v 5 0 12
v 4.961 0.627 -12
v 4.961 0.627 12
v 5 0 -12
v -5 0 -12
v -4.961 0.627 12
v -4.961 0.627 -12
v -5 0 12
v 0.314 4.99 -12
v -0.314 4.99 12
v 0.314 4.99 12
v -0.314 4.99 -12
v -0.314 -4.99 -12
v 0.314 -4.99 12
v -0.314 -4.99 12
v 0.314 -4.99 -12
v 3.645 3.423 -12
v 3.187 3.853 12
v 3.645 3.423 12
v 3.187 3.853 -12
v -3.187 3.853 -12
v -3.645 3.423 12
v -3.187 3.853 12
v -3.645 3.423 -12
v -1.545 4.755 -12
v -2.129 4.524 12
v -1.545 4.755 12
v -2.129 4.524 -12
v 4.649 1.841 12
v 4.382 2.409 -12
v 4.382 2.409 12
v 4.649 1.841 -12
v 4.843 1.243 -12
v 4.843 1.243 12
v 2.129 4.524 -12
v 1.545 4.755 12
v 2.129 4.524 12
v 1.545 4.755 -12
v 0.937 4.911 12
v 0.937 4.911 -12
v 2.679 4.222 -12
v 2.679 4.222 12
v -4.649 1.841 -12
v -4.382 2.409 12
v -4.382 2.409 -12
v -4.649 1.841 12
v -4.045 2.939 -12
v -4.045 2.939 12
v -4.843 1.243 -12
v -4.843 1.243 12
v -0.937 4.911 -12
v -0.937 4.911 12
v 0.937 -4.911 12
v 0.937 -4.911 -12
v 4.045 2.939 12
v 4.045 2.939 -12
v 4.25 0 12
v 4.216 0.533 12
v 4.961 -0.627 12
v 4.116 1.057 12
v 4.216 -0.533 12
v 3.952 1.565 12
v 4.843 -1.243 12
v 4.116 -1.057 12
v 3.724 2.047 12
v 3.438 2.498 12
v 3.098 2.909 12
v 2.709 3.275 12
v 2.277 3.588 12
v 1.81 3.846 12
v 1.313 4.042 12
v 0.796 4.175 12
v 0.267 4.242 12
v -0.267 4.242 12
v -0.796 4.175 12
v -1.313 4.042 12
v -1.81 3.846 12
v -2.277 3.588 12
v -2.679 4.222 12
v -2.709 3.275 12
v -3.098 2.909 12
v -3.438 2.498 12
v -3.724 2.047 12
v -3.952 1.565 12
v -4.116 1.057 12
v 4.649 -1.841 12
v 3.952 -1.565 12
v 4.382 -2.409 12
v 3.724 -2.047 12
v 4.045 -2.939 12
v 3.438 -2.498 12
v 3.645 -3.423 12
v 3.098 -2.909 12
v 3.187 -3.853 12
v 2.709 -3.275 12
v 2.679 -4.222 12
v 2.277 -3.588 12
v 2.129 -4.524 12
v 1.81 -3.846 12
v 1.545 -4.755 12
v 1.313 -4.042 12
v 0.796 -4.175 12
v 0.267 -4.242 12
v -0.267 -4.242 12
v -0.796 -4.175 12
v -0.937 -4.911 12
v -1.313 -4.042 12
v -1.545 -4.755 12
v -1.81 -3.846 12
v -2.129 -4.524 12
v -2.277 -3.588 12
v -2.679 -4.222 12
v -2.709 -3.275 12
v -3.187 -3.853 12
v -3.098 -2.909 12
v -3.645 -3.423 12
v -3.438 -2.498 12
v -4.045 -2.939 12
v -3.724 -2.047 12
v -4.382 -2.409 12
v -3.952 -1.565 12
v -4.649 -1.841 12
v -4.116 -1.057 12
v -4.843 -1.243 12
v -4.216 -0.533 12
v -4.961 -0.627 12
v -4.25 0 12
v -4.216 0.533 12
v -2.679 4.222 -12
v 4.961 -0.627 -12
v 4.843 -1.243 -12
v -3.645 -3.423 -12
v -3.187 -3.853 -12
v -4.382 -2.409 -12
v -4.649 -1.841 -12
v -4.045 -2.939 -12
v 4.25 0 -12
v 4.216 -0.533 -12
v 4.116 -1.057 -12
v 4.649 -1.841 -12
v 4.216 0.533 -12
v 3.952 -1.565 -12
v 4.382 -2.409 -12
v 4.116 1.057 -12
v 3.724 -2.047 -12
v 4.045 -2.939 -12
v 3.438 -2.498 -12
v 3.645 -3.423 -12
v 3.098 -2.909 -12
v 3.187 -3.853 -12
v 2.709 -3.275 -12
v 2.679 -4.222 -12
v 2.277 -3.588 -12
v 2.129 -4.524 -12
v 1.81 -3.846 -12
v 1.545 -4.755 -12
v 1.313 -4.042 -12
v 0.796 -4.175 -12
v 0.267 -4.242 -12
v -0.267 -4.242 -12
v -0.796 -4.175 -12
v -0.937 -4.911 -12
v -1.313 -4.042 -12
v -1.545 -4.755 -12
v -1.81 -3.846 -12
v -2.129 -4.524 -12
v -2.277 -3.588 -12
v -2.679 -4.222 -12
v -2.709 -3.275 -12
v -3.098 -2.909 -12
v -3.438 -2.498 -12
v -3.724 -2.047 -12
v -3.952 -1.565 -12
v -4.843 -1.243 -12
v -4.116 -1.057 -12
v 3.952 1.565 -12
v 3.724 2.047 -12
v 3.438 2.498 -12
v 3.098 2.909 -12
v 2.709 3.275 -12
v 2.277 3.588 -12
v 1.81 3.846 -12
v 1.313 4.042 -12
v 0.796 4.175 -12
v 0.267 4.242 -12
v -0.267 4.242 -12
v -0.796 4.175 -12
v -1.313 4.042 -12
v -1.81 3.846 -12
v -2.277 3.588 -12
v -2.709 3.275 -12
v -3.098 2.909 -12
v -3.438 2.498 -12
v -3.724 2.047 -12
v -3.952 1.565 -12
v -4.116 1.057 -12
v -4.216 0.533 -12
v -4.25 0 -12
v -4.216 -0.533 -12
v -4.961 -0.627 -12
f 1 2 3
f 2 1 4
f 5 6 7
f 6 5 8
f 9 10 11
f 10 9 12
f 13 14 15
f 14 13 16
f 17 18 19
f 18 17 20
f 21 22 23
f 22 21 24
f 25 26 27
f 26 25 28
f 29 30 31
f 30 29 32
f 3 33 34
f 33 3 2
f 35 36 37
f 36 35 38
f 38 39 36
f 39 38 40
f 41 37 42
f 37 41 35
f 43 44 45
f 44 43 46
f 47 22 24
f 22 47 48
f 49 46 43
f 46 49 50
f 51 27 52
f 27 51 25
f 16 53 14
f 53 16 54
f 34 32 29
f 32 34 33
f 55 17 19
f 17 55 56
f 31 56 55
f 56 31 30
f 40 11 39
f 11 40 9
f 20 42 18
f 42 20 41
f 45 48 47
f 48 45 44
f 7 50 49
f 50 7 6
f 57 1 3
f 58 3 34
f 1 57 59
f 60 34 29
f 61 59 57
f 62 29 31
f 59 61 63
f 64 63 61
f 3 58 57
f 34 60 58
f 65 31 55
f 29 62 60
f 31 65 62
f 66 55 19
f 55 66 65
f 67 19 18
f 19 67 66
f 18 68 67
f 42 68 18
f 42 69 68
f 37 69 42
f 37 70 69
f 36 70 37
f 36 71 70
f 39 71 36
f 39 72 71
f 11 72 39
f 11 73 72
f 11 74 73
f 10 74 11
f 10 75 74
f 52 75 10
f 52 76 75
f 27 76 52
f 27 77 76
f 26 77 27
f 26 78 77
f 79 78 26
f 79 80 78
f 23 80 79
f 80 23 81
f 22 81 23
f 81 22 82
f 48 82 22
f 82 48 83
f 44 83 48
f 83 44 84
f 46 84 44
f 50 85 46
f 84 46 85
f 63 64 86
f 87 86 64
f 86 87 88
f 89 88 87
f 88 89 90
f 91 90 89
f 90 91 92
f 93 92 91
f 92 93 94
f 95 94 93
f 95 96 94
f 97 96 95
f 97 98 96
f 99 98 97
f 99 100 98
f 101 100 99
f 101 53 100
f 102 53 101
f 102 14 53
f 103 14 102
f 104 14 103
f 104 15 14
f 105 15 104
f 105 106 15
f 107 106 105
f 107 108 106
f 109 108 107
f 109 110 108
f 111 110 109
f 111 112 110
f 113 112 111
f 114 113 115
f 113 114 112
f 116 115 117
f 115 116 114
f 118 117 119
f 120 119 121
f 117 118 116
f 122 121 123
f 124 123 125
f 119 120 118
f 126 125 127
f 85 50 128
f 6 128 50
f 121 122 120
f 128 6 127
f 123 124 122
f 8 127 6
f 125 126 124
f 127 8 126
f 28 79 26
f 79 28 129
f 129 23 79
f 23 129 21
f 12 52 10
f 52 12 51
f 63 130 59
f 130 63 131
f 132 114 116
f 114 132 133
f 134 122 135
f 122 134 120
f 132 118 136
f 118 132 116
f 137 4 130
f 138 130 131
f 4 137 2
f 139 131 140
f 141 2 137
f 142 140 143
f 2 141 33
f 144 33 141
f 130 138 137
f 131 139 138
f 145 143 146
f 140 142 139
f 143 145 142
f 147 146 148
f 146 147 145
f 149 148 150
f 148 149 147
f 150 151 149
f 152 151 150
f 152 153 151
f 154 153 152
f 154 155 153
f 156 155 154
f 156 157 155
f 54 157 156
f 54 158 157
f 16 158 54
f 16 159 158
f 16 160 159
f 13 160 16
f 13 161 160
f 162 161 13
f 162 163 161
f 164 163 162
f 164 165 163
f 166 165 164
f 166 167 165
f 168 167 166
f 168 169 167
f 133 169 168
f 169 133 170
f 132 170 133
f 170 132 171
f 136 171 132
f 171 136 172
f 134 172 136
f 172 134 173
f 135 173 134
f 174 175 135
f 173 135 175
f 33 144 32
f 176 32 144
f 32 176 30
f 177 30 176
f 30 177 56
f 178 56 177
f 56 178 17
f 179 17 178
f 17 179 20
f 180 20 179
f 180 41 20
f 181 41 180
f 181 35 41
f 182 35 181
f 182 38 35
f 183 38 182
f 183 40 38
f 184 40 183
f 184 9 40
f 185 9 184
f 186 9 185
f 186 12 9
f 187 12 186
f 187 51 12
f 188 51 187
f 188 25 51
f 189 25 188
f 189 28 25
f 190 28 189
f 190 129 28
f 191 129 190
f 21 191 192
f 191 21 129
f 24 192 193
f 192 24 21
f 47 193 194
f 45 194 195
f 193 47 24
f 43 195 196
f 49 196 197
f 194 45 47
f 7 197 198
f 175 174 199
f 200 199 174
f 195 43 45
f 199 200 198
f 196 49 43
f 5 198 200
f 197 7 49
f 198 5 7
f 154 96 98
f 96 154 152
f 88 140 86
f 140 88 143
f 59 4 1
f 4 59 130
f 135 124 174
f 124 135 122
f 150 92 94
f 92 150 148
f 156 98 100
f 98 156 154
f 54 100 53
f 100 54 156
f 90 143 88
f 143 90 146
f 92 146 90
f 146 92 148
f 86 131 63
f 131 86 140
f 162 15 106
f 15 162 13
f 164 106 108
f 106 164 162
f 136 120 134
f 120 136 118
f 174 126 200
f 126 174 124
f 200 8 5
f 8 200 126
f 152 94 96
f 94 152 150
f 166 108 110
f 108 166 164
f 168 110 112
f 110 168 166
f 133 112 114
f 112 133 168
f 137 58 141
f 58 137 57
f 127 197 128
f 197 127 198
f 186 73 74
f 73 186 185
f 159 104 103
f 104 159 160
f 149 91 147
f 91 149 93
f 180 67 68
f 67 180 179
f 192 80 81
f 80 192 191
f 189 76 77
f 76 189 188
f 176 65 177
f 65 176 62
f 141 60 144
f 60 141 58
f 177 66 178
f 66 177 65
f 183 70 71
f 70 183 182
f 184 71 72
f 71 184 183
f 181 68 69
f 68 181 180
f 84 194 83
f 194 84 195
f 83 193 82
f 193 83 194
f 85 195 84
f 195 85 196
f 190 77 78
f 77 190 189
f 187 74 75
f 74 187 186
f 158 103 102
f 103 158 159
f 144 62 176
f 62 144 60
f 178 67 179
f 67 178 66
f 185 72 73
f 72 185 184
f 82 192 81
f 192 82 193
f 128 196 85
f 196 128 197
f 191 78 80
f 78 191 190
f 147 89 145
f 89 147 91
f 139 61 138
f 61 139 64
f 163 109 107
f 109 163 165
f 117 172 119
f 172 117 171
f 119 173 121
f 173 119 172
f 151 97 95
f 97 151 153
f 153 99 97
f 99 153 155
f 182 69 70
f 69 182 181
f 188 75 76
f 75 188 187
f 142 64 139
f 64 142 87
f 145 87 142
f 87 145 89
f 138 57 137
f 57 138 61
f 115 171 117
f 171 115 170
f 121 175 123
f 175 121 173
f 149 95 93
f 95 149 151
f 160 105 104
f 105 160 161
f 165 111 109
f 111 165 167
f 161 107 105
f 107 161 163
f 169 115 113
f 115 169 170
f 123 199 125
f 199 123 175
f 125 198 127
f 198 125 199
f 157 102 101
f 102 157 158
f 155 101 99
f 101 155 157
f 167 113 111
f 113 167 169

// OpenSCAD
$fn = 50;


difference() {
	union() {
		translate(v = [0, 0, -12.0000000000]) {
			cylinder(h = 24, r = 5.0000000000);
		}
	}
	union() {
		translate(v = [0, 0, -100.0000000000]) {
			cylinder(h = 200, r = 4.2500000000);
		}
	}
}
